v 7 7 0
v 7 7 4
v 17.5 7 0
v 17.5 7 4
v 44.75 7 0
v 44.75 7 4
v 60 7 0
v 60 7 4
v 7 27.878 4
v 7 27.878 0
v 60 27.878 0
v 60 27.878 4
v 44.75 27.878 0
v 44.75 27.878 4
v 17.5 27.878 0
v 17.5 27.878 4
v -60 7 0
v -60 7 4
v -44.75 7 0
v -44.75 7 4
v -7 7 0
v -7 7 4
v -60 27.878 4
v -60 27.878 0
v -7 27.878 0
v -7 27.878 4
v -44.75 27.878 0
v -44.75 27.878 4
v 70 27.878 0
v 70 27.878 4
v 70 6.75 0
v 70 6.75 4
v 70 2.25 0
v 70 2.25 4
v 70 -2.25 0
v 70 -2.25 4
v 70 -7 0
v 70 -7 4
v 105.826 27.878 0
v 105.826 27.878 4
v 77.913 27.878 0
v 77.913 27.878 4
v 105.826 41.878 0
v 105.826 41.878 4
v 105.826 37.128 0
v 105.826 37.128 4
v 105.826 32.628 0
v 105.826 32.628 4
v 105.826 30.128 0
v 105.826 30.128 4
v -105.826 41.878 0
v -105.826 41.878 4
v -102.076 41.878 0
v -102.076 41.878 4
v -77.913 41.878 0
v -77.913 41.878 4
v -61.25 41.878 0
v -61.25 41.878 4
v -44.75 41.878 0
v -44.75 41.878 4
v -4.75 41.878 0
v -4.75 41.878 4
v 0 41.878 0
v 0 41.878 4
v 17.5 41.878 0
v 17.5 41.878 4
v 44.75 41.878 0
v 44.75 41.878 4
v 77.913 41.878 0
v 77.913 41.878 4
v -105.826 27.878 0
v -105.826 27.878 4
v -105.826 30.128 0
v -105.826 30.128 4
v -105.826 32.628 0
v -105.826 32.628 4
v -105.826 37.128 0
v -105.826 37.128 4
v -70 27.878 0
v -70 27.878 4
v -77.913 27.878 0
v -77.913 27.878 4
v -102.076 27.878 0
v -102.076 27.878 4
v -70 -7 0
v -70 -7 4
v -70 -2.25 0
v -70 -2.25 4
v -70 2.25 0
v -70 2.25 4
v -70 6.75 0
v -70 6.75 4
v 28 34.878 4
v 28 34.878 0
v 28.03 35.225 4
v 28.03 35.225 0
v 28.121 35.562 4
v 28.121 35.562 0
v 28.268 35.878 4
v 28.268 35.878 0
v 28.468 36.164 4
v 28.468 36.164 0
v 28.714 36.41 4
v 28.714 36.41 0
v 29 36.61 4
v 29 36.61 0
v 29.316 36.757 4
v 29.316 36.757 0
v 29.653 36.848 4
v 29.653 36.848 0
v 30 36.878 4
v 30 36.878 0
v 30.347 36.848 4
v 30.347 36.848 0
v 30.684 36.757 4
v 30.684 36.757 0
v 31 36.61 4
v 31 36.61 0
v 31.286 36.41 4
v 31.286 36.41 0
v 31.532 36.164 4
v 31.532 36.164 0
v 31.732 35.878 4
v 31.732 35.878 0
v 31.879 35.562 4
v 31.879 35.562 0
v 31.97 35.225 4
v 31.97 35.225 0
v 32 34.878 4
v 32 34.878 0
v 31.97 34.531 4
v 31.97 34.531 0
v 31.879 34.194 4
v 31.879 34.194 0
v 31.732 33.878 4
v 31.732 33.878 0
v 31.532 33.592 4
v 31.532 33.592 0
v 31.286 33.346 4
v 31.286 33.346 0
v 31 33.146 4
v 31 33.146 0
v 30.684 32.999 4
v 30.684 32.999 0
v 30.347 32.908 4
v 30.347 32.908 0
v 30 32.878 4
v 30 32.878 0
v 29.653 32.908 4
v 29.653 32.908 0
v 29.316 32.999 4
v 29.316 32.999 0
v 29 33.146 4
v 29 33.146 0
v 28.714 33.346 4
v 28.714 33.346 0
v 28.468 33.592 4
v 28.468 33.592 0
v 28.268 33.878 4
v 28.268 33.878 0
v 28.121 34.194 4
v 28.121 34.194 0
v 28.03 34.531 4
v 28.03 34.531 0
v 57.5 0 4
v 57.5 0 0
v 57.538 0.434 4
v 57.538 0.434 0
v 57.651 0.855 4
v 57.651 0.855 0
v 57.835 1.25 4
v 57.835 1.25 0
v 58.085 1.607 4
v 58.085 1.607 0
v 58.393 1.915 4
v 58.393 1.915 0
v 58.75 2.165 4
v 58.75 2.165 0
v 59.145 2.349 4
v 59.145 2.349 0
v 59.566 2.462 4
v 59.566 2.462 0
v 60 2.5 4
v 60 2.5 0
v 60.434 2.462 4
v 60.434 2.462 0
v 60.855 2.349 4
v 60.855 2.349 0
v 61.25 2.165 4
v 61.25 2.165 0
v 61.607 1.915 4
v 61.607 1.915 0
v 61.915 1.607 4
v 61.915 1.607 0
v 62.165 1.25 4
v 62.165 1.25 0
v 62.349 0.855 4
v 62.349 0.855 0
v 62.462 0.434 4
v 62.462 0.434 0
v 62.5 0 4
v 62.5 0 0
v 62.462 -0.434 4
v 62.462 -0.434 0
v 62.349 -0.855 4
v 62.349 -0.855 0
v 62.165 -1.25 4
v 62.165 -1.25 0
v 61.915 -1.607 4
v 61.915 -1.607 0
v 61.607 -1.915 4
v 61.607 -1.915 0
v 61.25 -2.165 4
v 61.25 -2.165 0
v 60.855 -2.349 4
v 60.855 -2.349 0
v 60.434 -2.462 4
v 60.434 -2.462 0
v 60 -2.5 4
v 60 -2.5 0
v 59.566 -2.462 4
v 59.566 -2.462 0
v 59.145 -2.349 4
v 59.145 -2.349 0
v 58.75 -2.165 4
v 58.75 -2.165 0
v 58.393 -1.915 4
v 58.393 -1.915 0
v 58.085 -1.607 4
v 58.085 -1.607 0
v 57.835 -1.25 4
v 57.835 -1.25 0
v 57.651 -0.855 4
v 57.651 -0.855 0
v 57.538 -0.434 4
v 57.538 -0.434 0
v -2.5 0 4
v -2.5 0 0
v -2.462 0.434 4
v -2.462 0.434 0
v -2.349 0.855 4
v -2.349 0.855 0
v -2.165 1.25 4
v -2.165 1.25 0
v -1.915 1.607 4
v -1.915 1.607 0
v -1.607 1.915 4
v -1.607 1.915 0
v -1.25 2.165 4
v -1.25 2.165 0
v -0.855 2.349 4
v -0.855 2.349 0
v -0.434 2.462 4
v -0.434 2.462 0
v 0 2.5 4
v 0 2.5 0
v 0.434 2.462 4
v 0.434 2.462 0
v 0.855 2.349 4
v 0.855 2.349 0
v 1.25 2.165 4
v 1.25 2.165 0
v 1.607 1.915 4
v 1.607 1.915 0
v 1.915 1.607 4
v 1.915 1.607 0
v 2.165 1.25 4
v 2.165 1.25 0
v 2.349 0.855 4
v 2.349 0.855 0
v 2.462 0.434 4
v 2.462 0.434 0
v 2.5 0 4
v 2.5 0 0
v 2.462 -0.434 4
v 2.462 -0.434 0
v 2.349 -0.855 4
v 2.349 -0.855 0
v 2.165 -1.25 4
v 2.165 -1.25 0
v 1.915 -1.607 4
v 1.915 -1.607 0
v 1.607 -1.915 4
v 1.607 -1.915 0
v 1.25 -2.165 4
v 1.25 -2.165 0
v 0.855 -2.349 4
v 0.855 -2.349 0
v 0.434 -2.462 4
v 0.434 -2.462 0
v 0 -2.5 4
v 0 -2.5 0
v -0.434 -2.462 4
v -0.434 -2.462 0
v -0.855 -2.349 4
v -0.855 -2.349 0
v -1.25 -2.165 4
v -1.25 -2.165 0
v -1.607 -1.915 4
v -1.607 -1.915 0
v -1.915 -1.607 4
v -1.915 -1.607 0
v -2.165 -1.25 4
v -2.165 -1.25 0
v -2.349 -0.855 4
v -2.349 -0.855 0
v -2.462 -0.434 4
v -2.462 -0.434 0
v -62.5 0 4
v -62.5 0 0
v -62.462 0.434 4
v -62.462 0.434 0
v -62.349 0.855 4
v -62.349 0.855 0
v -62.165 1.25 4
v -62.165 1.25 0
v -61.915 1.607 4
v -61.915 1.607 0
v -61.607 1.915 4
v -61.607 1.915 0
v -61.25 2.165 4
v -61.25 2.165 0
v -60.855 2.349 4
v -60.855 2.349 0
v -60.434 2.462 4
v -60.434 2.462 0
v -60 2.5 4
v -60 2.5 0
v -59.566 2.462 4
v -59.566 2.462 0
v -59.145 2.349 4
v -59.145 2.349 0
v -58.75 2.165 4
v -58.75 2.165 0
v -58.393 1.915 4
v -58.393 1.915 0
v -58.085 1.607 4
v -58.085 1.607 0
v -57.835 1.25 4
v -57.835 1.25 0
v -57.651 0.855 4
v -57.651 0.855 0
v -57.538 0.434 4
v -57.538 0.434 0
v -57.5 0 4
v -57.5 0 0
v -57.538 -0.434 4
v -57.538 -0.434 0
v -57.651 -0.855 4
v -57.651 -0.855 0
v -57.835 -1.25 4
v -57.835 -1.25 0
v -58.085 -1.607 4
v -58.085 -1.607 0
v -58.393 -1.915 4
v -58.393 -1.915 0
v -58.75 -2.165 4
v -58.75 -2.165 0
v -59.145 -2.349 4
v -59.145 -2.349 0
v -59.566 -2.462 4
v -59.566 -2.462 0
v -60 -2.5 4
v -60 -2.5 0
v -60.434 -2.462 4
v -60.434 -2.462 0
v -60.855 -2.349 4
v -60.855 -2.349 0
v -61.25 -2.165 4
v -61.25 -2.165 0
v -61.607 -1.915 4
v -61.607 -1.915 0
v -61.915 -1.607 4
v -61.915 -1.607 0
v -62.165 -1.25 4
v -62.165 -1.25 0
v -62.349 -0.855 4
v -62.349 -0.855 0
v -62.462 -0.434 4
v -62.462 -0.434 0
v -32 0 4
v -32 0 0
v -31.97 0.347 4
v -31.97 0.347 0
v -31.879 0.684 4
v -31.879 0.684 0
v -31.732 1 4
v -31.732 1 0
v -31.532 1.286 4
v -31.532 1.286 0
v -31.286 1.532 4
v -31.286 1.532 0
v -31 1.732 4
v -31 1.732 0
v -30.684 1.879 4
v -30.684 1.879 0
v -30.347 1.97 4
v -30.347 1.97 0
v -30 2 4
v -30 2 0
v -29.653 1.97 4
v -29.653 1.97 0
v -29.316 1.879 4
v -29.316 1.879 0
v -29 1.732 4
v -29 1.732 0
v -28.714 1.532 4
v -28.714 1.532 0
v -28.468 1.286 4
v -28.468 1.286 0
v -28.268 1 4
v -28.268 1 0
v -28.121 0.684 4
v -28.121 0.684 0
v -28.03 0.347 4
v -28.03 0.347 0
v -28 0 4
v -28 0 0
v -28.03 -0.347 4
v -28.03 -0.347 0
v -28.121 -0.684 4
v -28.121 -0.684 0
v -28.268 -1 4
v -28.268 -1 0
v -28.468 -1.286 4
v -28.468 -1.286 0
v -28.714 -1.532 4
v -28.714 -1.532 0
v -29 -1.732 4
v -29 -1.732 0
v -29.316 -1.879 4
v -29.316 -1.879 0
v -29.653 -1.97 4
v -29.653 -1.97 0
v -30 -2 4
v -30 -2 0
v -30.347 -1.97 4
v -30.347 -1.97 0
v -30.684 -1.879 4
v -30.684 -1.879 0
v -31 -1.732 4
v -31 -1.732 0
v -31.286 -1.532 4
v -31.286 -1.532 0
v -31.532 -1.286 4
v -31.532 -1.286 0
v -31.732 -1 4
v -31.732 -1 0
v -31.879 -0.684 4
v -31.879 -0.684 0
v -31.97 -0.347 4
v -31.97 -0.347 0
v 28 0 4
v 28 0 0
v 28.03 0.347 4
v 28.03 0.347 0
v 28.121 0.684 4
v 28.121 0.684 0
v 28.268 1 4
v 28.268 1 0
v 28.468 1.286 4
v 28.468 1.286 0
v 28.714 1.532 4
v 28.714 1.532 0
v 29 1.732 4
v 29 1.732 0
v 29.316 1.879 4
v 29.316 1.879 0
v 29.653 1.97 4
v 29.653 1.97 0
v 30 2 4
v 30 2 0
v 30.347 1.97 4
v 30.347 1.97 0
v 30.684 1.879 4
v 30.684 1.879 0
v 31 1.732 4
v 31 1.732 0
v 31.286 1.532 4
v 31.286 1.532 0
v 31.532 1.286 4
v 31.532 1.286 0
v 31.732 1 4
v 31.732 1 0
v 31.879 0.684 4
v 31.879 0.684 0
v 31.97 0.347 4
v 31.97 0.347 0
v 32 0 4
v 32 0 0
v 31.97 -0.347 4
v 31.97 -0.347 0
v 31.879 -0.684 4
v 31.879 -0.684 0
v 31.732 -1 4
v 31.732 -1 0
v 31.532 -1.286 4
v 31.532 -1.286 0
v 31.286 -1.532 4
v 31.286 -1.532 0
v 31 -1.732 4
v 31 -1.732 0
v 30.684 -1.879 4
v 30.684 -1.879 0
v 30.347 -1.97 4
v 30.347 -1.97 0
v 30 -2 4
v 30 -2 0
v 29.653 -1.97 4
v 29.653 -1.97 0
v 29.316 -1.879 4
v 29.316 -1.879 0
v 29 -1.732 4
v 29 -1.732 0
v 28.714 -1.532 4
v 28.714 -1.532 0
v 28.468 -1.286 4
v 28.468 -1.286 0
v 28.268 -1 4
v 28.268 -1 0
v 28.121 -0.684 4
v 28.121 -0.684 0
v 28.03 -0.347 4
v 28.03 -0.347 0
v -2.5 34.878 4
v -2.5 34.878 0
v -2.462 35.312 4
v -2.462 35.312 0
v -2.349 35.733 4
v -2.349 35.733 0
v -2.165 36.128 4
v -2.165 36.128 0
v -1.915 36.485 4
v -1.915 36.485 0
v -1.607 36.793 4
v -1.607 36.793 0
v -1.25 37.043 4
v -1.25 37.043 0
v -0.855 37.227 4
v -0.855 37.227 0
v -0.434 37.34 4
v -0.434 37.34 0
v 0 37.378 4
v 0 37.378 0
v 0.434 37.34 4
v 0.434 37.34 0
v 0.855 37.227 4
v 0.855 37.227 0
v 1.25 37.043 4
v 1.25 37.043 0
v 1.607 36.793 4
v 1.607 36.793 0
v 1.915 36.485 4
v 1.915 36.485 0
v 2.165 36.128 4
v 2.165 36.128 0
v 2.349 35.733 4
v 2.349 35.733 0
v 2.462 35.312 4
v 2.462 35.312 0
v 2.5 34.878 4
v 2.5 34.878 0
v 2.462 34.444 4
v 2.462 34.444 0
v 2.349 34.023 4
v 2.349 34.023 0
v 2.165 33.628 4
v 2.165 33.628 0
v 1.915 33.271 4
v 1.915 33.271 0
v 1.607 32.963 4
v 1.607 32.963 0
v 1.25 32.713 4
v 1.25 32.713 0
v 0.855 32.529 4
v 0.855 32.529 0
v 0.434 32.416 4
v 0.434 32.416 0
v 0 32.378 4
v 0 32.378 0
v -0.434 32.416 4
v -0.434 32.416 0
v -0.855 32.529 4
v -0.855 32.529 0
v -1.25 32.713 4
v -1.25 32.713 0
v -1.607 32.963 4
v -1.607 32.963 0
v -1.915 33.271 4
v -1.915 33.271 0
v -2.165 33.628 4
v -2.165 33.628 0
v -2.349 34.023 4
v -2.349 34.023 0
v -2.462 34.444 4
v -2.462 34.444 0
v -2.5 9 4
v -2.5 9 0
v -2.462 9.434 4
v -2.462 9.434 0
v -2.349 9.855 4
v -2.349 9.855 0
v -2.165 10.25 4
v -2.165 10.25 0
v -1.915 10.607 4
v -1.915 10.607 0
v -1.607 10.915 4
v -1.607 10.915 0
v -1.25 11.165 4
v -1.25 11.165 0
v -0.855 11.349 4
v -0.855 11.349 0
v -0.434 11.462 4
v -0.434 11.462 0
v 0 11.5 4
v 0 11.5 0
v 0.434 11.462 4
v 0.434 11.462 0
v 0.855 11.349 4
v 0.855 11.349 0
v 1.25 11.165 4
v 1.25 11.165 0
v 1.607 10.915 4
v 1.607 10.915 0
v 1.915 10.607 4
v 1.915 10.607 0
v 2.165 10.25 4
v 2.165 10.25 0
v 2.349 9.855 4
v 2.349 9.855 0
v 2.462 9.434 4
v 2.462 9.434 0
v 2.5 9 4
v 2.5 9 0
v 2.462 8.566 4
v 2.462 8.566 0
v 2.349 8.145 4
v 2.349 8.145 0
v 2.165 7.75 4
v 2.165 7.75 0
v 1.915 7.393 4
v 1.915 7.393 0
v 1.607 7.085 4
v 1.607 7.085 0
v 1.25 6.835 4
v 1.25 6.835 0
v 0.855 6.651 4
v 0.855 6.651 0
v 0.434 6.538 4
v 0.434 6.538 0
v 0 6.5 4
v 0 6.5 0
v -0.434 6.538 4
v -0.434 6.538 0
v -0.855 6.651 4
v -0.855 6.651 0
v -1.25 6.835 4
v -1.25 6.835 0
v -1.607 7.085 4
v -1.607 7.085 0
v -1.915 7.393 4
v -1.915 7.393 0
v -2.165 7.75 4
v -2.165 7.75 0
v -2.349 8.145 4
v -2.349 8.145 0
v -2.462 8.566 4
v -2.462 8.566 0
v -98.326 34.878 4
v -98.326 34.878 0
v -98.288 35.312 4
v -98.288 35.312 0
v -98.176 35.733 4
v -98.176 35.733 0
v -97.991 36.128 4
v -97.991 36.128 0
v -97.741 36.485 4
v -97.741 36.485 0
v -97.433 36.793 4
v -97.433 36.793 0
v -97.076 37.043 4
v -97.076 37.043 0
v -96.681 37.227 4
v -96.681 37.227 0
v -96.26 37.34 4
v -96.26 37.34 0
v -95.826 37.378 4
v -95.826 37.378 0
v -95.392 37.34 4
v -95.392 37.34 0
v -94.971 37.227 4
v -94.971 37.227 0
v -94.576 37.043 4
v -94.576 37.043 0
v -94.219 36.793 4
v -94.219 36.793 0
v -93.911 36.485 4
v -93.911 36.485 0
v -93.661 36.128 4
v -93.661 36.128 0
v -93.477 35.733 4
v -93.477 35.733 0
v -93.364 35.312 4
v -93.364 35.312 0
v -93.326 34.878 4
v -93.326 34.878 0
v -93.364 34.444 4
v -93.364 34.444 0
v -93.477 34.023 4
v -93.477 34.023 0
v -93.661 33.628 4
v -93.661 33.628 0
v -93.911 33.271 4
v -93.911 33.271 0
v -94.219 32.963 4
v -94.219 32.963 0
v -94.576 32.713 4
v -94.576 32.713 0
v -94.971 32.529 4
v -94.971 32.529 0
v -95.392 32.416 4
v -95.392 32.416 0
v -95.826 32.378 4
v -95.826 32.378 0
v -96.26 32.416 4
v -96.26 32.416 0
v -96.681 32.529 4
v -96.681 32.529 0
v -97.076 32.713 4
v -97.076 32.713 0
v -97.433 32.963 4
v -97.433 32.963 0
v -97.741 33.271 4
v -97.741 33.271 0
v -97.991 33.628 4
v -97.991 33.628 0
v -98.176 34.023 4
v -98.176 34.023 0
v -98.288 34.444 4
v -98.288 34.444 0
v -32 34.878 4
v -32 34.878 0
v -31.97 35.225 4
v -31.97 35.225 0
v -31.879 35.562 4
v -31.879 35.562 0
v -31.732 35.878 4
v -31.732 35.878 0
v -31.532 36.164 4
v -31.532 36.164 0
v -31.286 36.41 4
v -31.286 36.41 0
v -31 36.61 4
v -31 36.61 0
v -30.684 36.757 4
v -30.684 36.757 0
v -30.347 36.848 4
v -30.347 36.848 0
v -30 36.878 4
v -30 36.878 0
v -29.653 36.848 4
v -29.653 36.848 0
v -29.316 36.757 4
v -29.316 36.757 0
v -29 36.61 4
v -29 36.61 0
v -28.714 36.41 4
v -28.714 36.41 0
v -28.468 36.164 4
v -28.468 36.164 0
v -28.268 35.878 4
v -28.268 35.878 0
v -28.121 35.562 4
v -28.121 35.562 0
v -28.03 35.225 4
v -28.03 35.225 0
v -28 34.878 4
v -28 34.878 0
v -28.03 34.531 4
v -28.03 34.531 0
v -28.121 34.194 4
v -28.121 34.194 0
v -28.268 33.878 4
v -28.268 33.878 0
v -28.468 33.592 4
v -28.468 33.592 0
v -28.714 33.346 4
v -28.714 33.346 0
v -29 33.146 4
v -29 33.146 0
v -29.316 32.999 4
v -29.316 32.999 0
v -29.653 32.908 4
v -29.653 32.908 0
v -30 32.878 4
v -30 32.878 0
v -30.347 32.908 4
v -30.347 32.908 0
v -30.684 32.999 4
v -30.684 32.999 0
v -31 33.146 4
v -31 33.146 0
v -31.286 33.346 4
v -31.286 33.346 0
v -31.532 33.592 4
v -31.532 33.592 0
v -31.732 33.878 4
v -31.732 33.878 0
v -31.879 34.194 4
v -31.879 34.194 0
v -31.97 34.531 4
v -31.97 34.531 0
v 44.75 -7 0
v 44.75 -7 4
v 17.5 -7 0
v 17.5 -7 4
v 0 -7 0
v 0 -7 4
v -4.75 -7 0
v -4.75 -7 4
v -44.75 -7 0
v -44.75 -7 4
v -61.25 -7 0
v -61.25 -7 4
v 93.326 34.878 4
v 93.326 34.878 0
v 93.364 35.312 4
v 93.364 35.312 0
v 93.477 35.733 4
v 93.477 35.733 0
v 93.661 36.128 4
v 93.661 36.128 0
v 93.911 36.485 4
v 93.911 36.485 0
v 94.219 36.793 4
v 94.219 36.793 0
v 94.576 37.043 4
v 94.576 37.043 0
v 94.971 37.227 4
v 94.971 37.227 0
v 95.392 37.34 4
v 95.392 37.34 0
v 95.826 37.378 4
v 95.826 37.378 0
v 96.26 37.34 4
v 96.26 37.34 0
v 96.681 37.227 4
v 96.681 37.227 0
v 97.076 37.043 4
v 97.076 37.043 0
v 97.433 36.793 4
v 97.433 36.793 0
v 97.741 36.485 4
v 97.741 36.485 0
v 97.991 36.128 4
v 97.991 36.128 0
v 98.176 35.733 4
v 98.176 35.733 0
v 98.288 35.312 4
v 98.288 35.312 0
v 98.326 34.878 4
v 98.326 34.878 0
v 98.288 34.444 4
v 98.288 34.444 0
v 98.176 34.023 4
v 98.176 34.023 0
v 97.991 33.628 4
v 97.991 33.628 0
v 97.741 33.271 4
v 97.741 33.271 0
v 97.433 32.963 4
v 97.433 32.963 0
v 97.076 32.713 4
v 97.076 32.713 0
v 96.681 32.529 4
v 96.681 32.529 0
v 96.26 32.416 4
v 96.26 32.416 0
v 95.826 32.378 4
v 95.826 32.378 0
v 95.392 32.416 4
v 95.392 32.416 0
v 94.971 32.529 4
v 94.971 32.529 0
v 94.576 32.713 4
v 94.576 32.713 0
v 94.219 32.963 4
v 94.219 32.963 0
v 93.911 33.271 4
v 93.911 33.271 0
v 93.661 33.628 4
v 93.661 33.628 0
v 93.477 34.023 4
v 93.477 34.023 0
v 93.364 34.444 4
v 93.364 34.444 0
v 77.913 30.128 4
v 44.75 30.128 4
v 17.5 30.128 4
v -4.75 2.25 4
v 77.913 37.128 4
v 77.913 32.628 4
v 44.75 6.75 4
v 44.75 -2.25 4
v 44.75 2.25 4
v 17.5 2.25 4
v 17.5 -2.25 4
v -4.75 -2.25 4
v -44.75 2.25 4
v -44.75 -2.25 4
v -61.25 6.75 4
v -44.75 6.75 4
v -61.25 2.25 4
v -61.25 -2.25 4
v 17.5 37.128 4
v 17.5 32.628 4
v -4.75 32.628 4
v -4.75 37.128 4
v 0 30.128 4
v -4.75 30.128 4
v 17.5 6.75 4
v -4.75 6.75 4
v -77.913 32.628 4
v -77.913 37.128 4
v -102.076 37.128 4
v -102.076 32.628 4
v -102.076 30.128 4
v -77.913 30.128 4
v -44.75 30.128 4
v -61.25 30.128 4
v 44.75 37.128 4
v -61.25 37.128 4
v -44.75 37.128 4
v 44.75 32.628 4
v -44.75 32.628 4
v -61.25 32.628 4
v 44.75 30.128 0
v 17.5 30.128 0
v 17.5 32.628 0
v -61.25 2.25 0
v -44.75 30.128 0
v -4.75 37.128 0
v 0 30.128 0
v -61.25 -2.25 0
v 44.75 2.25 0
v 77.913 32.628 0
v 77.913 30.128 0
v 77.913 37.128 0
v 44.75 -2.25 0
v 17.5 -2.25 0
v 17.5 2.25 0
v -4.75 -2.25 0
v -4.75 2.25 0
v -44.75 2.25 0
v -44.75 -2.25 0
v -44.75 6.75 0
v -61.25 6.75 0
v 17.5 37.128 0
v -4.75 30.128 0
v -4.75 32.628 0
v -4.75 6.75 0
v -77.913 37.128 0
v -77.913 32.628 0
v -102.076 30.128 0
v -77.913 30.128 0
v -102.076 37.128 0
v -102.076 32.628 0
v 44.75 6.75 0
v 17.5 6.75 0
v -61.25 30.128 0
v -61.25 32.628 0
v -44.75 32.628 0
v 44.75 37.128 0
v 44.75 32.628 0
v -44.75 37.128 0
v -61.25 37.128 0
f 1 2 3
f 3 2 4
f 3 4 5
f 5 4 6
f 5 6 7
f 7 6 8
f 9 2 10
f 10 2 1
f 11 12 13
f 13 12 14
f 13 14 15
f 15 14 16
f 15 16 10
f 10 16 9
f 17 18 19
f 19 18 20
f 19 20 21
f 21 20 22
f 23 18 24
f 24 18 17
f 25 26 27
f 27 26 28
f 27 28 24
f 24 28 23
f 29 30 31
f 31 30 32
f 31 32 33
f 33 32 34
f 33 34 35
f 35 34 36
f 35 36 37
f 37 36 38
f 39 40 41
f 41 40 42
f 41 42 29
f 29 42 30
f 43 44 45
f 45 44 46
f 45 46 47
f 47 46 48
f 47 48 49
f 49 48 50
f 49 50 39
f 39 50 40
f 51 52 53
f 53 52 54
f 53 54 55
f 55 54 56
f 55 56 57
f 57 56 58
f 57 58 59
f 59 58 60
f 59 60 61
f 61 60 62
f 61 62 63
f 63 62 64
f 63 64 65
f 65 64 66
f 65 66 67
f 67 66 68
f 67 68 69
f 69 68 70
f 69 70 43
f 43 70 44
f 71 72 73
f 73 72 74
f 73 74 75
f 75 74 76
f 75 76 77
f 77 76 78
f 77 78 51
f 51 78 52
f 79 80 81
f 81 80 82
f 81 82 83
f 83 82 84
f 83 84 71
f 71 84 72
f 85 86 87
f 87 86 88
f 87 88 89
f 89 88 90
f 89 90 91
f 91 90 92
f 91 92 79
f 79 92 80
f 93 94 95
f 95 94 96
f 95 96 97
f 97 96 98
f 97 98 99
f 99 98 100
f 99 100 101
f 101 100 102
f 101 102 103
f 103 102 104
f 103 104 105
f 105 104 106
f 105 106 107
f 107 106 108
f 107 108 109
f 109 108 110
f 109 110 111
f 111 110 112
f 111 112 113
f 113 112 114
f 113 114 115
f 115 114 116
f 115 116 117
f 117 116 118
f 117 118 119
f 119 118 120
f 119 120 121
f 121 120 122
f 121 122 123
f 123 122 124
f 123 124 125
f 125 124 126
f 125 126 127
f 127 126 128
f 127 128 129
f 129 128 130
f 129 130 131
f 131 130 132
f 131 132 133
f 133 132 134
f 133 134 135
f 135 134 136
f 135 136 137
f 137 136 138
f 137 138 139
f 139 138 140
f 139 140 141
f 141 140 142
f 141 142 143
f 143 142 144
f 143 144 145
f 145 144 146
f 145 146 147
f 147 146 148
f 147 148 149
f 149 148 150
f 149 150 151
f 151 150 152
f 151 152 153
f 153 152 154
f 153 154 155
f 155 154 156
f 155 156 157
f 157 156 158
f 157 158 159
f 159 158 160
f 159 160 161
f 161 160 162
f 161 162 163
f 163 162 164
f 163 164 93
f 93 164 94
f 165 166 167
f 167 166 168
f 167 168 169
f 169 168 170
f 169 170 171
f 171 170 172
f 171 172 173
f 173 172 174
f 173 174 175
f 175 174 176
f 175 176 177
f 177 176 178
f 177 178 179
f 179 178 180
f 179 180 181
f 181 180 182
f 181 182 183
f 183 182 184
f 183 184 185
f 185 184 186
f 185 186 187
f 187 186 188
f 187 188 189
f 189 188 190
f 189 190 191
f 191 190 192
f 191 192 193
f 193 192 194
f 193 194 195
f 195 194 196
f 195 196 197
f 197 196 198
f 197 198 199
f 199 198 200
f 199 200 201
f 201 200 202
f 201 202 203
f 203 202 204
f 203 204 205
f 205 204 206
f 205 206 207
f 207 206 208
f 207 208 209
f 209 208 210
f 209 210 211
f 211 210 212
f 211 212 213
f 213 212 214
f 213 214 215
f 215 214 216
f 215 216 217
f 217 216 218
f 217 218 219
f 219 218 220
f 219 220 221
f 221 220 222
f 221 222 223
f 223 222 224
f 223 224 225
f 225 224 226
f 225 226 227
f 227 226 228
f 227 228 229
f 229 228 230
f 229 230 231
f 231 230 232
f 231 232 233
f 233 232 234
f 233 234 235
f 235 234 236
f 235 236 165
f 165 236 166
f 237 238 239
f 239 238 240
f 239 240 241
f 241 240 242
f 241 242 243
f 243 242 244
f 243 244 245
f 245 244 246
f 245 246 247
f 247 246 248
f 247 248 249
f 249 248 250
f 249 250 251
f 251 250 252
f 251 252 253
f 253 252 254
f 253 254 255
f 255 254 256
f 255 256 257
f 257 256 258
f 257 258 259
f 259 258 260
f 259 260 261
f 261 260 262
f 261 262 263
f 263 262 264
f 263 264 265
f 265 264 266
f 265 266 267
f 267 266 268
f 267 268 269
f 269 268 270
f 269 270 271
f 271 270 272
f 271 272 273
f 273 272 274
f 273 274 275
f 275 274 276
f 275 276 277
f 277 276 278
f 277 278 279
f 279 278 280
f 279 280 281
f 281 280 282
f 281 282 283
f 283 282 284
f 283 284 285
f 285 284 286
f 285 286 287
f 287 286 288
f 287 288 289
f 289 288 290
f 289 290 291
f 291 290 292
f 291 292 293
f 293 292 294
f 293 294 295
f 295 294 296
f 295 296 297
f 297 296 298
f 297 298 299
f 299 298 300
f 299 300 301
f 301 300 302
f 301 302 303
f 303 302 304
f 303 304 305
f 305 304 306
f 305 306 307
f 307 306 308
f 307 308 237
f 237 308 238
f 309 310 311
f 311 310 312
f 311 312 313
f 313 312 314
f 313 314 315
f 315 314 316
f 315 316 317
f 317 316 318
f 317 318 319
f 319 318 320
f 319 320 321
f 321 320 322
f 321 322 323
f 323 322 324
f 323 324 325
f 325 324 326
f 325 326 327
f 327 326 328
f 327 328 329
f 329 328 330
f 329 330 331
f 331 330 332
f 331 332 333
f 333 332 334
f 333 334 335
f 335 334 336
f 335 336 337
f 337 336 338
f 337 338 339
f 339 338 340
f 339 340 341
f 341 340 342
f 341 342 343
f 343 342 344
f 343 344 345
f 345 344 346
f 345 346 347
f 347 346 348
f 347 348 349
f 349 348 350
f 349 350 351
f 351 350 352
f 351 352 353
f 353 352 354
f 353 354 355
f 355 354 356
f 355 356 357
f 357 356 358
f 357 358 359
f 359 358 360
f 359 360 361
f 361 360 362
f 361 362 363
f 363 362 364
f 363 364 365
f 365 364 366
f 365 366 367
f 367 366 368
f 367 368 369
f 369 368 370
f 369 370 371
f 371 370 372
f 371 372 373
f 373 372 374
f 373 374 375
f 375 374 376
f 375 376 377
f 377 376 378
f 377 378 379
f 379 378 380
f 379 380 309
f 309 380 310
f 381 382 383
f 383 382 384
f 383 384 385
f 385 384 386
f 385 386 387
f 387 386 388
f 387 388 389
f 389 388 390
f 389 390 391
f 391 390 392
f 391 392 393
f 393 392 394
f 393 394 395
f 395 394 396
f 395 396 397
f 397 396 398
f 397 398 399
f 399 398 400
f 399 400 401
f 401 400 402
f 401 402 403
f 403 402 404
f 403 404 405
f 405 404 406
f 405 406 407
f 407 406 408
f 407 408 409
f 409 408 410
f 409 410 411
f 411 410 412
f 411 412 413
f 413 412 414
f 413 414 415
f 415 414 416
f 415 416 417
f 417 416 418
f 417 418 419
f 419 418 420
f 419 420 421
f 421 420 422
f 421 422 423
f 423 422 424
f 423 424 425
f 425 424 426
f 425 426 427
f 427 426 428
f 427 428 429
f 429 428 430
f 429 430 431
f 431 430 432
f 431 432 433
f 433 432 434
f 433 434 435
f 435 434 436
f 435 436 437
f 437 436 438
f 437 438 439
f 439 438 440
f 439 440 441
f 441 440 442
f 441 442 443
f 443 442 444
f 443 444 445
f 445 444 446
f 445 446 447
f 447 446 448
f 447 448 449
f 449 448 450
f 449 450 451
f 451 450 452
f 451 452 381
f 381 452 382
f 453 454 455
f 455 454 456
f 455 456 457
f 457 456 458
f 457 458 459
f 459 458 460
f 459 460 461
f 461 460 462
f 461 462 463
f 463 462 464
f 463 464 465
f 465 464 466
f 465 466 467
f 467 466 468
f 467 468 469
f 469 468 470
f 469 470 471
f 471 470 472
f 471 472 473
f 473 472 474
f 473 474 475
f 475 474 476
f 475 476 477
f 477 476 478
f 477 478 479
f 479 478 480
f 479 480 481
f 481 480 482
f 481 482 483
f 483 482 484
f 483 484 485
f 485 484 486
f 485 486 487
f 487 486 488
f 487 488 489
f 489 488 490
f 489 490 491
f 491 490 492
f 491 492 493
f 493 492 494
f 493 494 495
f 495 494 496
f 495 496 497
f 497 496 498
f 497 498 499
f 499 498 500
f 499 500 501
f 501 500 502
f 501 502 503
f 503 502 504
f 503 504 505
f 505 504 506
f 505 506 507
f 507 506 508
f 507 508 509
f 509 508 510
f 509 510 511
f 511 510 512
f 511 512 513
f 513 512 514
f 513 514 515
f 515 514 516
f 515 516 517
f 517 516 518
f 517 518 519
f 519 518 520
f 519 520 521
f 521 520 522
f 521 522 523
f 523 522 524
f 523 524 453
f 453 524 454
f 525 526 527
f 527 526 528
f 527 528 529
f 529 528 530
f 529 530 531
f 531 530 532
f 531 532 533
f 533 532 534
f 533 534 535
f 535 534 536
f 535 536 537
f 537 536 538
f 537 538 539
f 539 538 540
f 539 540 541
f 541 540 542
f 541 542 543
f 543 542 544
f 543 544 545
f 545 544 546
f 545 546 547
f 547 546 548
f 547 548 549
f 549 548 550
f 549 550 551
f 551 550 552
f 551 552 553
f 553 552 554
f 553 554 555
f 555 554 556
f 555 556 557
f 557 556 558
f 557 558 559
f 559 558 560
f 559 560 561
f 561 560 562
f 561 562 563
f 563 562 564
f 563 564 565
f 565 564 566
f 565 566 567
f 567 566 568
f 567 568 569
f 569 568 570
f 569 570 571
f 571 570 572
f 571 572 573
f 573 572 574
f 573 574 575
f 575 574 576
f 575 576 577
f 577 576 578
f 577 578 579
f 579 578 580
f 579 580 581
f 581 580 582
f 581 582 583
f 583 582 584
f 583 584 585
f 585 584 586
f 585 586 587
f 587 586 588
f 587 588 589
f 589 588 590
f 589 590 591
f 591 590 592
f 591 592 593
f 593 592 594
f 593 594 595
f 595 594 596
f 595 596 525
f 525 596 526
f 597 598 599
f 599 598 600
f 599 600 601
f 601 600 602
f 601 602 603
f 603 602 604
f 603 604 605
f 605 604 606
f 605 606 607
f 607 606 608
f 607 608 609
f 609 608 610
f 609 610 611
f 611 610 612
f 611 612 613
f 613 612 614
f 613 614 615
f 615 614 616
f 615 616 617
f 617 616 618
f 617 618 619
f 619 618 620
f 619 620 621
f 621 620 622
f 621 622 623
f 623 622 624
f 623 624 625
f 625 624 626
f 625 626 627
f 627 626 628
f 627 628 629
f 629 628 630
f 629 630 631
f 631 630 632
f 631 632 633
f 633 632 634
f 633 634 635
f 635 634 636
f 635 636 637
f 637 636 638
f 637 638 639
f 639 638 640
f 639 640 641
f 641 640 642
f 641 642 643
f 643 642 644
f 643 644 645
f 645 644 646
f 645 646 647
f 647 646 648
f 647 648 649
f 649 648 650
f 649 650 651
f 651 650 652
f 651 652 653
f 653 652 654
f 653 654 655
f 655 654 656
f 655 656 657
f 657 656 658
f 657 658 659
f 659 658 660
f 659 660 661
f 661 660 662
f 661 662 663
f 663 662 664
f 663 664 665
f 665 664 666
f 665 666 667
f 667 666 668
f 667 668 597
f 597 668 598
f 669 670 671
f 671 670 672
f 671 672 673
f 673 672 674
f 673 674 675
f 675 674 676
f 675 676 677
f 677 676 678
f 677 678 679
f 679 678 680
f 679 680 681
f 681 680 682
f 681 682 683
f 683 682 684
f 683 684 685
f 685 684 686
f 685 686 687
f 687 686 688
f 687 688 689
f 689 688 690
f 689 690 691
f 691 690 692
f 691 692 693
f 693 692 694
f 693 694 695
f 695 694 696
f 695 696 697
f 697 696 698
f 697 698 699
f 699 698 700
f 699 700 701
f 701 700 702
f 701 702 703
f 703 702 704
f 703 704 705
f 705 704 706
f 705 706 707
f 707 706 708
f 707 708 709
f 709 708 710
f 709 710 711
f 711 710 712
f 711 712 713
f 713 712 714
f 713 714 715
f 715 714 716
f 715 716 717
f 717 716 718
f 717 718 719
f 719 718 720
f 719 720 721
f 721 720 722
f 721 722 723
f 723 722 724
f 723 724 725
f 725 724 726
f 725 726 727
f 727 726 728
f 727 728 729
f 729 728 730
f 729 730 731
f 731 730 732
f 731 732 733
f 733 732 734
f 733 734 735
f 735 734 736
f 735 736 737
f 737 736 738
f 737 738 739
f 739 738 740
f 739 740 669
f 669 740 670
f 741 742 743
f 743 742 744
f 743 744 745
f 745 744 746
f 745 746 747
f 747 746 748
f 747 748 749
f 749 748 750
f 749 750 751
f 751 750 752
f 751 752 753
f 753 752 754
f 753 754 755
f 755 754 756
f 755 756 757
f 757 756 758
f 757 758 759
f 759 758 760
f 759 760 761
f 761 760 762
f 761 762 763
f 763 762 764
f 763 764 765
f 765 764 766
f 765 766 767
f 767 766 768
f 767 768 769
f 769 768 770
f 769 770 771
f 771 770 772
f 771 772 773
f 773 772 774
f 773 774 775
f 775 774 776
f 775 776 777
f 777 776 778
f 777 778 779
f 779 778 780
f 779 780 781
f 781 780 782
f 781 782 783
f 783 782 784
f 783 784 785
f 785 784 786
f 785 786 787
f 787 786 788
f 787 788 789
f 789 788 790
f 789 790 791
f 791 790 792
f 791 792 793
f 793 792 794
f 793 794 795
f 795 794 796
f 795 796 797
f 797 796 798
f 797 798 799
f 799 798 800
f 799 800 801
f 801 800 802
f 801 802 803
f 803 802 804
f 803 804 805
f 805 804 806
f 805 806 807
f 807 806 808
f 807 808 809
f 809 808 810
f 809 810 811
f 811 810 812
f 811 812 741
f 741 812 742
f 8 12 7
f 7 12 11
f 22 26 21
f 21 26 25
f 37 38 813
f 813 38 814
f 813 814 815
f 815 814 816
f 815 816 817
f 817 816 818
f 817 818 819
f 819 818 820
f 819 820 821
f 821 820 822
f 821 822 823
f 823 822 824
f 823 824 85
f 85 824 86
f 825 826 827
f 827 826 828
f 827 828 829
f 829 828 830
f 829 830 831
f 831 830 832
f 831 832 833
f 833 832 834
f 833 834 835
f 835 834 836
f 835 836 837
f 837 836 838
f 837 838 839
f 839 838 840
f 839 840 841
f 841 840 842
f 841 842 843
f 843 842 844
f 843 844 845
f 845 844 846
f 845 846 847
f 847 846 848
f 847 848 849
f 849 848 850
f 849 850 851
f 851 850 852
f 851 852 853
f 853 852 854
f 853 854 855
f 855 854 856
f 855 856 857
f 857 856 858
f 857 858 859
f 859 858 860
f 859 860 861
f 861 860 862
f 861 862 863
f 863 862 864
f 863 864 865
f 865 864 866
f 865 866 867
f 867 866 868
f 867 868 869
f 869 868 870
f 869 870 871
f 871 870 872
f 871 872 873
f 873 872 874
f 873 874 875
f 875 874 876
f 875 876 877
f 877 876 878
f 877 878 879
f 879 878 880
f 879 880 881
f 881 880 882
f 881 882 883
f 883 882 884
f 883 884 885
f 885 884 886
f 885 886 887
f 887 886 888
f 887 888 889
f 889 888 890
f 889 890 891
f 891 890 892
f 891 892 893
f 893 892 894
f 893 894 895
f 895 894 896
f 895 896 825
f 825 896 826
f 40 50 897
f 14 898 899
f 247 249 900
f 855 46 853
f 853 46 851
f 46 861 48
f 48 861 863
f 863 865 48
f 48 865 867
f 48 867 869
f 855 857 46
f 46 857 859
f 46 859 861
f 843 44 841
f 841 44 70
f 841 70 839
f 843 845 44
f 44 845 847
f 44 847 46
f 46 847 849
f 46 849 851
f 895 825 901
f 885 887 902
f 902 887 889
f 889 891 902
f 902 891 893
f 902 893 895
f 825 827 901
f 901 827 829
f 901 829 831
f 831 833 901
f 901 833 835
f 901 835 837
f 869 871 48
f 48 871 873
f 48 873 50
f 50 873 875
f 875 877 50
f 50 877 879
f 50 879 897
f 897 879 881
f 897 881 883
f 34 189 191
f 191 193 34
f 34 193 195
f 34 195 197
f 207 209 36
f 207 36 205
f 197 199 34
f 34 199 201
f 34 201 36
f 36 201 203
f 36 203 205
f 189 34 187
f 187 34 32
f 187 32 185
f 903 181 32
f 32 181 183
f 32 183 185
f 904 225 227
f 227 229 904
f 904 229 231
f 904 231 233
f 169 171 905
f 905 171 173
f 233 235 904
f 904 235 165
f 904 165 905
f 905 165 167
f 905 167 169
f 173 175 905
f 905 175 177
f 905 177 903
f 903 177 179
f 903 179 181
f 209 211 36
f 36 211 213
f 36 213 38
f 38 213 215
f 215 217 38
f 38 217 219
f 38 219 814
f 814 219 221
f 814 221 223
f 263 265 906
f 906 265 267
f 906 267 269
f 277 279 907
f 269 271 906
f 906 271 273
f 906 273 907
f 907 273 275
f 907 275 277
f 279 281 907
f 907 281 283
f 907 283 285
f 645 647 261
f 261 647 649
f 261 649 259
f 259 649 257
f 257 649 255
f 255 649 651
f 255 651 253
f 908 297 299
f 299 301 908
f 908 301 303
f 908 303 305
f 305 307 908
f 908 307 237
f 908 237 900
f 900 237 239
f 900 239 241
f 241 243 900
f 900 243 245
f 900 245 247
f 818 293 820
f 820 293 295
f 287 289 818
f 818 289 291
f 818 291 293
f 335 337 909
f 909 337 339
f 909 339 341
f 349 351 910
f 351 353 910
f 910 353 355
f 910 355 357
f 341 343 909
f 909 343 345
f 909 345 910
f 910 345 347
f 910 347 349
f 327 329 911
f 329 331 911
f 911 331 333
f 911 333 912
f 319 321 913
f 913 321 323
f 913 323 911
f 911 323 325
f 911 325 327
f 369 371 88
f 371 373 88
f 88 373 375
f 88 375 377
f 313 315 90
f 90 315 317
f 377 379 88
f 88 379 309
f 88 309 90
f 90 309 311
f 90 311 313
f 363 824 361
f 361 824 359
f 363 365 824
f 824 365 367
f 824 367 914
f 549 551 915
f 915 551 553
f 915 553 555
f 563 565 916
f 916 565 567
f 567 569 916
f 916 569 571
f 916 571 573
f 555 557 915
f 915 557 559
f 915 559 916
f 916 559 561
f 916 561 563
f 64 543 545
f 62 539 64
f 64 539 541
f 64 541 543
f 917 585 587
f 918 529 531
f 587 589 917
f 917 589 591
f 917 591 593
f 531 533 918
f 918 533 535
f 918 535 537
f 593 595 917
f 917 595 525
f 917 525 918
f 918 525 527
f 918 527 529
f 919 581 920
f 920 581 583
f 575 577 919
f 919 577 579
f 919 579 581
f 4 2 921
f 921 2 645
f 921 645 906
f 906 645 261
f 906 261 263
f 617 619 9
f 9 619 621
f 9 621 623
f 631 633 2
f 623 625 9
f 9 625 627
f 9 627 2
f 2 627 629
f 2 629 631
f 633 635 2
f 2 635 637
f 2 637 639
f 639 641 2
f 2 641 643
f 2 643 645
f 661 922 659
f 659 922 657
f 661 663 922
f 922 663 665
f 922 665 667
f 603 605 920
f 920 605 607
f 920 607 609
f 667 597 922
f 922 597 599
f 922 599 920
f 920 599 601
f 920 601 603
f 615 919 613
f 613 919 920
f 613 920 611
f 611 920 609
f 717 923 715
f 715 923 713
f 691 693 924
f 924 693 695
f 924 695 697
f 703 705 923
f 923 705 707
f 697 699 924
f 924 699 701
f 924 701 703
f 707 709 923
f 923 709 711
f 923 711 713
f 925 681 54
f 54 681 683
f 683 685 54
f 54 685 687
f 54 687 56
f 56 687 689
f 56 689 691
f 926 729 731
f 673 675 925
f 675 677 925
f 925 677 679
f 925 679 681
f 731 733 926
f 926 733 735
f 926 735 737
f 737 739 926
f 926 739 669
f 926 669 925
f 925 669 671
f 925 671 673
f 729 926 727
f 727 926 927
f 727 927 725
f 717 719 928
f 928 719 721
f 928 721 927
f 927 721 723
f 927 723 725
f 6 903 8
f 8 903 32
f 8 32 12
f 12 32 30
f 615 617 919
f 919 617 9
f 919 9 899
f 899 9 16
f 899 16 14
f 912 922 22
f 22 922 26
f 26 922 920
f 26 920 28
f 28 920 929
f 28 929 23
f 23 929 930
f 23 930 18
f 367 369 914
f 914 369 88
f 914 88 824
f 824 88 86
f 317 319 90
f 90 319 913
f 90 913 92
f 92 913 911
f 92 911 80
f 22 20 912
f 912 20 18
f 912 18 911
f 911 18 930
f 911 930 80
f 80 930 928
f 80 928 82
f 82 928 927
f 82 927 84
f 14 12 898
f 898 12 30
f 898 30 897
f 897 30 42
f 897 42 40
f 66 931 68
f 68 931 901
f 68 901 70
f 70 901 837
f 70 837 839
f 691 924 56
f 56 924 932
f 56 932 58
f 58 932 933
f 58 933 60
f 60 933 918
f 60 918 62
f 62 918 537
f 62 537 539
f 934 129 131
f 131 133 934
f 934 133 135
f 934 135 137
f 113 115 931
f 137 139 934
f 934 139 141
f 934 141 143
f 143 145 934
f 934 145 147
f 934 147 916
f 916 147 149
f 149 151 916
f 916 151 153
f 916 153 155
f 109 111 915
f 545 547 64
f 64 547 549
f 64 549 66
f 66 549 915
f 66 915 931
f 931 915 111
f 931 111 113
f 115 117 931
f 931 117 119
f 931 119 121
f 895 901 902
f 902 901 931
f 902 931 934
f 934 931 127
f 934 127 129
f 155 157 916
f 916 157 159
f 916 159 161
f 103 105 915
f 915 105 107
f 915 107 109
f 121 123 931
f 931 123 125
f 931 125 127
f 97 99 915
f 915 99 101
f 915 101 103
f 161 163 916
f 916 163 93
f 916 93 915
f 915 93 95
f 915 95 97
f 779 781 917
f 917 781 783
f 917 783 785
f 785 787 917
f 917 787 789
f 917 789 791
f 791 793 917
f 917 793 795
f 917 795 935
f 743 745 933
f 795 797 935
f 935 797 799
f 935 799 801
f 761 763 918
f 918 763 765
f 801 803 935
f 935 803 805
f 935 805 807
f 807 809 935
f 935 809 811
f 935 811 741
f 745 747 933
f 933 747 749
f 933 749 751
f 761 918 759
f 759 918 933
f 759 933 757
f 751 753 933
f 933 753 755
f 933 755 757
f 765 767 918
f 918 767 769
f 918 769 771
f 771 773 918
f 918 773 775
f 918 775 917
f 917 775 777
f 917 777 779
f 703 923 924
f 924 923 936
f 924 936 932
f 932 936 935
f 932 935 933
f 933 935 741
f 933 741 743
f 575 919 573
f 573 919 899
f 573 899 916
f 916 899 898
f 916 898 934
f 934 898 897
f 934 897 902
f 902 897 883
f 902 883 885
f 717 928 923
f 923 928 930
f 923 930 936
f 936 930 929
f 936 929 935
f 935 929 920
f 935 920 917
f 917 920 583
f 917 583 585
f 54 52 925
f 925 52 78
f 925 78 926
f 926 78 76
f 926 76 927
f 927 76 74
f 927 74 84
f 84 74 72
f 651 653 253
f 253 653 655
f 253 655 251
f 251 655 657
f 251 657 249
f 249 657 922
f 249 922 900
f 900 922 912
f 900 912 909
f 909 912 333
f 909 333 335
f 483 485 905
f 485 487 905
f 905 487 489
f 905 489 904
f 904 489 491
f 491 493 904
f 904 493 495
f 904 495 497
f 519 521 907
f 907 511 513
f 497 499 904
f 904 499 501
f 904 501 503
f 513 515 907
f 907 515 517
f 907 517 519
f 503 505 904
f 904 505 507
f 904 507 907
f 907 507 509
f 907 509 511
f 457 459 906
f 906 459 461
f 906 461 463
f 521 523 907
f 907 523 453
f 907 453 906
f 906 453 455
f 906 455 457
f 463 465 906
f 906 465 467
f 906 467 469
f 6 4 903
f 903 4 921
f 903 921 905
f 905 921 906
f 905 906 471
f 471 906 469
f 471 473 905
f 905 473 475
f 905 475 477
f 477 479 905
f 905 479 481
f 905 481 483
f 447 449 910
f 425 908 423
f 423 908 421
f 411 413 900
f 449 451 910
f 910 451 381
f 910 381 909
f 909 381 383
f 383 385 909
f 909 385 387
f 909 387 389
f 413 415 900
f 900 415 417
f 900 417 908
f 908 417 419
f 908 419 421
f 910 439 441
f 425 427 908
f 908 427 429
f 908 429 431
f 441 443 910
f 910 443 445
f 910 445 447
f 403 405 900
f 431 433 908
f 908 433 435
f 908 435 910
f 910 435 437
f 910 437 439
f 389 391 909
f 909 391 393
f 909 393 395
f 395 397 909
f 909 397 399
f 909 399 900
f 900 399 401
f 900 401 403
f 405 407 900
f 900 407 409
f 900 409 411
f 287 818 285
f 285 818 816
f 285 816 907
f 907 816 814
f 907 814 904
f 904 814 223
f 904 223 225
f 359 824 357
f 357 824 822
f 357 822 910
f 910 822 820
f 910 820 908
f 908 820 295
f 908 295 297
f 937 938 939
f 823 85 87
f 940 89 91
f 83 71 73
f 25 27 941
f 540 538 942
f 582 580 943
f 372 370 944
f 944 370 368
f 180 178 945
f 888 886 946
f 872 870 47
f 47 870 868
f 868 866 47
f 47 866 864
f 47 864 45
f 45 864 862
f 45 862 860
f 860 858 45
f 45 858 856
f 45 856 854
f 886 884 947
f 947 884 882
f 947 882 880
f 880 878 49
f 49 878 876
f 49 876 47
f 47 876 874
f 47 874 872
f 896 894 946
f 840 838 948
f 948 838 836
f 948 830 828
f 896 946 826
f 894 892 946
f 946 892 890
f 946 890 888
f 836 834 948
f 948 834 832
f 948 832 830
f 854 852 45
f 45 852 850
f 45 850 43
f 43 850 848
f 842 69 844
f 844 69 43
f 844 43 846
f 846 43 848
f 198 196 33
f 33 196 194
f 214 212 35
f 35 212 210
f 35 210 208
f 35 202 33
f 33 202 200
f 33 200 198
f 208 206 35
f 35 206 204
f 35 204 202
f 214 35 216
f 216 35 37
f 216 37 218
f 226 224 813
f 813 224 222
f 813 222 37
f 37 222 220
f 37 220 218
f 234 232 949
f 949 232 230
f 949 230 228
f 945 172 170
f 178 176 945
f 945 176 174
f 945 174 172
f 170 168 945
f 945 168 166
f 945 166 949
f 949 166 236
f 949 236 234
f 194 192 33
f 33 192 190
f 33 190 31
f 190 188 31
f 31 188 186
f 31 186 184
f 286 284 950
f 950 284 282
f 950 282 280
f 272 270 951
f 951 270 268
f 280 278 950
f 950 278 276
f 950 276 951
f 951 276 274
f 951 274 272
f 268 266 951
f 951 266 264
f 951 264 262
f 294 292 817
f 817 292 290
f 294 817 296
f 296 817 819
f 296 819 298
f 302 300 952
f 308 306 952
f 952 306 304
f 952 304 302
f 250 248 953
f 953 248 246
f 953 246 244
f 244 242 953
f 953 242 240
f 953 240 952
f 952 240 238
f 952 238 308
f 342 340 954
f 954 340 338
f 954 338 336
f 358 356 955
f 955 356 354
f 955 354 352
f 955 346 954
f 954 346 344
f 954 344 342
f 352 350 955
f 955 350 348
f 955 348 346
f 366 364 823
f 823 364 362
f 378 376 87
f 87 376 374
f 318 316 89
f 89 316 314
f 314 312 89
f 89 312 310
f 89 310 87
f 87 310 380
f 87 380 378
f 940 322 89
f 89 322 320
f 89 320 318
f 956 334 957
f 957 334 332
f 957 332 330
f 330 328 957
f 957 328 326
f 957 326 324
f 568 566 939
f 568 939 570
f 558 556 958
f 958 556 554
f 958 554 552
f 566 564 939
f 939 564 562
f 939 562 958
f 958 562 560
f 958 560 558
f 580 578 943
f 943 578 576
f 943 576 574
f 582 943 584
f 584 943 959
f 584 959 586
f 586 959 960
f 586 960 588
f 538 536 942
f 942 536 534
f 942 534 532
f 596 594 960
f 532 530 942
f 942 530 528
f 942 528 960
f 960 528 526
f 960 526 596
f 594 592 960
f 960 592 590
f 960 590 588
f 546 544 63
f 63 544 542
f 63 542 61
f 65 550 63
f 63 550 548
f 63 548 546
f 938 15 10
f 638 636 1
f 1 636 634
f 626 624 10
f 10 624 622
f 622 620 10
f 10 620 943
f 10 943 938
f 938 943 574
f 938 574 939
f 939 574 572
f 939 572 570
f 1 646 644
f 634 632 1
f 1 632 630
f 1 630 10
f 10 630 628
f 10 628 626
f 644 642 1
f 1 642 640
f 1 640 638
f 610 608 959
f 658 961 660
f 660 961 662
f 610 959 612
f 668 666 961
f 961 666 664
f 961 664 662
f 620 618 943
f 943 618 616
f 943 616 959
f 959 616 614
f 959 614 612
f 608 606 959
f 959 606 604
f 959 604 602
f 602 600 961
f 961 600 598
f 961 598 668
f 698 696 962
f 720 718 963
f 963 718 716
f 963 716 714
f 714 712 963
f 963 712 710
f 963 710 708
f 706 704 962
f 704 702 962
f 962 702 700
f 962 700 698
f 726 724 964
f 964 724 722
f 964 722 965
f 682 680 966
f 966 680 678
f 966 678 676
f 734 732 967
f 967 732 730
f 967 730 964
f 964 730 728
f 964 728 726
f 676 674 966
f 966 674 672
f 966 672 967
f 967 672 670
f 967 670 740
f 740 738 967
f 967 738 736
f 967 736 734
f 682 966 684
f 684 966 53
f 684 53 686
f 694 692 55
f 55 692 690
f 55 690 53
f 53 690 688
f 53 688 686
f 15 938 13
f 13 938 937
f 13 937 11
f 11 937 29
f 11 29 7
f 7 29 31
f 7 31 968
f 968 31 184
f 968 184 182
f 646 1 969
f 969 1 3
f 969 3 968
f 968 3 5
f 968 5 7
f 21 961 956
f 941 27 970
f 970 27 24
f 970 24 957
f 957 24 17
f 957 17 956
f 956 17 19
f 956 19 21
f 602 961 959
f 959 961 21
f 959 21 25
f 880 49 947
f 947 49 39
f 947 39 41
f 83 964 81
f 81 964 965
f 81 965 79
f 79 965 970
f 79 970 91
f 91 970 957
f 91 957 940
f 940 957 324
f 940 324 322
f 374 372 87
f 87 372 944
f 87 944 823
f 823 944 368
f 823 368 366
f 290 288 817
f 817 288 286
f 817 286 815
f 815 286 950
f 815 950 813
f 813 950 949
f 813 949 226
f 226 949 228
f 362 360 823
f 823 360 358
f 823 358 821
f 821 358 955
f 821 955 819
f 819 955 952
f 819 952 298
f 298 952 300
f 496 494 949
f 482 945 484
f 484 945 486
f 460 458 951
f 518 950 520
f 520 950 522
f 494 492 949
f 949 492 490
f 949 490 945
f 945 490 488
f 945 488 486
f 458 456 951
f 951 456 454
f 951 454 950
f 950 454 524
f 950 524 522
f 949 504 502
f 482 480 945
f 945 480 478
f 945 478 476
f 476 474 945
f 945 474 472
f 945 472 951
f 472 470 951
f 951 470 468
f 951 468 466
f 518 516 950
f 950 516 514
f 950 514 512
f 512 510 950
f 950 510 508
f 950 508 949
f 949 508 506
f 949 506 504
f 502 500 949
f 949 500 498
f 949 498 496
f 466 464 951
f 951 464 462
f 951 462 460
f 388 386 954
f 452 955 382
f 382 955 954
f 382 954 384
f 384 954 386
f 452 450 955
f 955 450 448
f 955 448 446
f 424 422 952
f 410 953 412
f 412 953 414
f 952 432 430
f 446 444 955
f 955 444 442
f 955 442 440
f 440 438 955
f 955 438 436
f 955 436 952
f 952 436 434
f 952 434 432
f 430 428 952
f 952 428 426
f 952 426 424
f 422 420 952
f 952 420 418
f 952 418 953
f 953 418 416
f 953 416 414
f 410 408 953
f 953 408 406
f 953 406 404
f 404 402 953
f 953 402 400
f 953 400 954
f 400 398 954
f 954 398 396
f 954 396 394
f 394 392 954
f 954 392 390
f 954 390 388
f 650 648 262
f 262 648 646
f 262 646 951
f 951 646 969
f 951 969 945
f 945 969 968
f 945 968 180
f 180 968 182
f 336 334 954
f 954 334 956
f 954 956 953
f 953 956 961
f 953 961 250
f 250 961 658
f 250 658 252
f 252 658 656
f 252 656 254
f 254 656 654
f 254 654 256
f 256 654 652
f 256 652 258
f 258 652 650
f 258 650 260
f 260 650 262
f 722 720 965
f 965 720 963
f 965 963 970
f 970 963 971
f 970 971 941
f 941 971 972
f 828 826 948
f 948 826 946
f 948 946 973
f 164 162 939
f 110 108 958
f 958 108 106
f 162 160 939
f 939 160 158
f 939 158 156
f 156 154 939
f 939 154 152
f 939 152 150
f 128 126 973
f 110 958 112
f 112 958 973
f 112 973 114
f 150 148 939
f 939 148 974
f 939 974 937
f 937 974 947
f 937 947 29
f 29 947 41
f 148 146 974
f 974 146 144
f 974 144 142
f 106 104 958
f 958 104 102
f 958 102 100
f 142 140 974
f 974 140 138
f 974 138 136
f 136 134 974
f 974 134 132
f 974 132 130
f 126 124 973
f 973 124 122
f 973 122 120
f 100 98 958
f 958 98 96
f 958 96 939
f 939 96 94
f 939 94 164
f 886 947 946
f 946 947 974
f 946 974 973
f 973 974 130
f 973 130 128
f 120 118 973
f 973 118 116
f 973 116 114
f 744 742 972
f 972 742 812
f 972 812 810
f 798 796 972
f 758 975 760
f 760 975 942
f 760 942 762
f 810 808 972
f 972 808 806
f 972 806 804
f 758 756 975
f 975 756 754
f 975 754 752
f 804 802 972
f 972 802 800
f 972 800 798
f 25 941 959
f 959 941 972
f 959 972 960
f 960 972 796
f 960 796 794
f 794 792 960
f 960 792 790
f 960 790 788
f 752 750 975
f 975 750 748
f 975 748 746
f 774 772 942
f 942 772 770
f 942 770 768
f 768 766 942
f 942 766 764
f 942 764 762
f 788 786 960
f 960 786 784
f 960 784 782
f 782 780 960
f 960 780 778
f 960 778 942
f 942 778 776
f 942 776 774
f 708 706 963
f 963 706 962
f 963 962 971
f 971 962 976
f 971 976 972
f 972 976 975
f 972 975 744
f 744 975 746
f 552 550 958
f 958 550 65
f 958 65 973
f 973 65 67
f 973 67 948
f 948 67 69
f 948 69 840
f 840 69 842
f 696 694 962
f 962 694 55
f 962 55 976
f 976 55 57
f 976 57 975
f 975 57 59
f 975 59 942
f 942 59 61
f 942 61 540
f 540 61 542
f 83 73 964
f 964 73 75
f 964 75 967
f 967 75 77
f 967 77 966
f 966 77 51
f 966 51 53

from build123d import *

# Parameters (mm, degrees)
SKETCH1_W           = 53
SKETCH1_H           = 20.877946607
SKETCH1_R           = 2.5
SKETCH1_R_2         = 2
BOSS_EXTRUDE1_DEPTH = 4


with BuildPart() as part:
    # Sketch1 → Boss-Extrude1 (new body)
    with BuildSketch(Plane.XY):
        Polygon((-70, 27.877946607), (-70, -7), (70, -7), (70, 27.877946607), (105.826370741, 27.877946607), (105.826370741, 41.877946607), (-105.826370741, 41.877946607), (-105.826370741, 27.877946607), align=None)
        with Locations((33.5, 17.438973303)):
            Rectangle(SKETCH1_W, SKETCH1_H, mode=Mode.SUBTRACT)
        with Locations((0, 9)):
            Circle(SKETCH1_R, mode=Mode.SUBTRACT)
        with Locations((-33.5, 17.438973303)):
            Rectangle(SKETCH1_W, SKETCH1_H, mode=Mode.SUBTRACT)
        with Locations((60, 0)):
            Circle(SKETCH1_R, mode=Mode.SUBTRACT)
        with Locations((-60, 0)):
            Circle(SKETCH1_R, mode=Mode.SUBTRACT)
        with Locations((-30, 0)):
            Circle(SKETCH1_R_2, mode=Mode.SUBTRACT)
        Circle(SKETCH1_R, mode=Mode.SUBTRACT)
        with Locations((30, 0)):
            Circle(SKETCH1_R_2, mode=Mode.SUBTRACT)
        with Locations((-30, 34.877946607)):
            Circle(SKETCH1_R_2, mode=Mode.SUBTRACT)
        with Locations((-95.826370741, 34.877946607)):
            Circle(SKETCH1_R, mode=Mode.SUBTRACT)
        with Locations((0, 34.877946607)):
            Circle(SKETCH1_R, mode=Mode.SUBTRACT)
        with Locations((95.826370741, 34.877946607)):
            Circle(SKETCH1_R, mode=Mode.SUBTRACT)
        with Locations((30, 34.877946607)):
            Circle(SKETCH1_R_2, mode=Mode.SUBTRACT)
    extrude(amount=BOSS_EXTRUDE1_DEPTH)


solid = part.part
